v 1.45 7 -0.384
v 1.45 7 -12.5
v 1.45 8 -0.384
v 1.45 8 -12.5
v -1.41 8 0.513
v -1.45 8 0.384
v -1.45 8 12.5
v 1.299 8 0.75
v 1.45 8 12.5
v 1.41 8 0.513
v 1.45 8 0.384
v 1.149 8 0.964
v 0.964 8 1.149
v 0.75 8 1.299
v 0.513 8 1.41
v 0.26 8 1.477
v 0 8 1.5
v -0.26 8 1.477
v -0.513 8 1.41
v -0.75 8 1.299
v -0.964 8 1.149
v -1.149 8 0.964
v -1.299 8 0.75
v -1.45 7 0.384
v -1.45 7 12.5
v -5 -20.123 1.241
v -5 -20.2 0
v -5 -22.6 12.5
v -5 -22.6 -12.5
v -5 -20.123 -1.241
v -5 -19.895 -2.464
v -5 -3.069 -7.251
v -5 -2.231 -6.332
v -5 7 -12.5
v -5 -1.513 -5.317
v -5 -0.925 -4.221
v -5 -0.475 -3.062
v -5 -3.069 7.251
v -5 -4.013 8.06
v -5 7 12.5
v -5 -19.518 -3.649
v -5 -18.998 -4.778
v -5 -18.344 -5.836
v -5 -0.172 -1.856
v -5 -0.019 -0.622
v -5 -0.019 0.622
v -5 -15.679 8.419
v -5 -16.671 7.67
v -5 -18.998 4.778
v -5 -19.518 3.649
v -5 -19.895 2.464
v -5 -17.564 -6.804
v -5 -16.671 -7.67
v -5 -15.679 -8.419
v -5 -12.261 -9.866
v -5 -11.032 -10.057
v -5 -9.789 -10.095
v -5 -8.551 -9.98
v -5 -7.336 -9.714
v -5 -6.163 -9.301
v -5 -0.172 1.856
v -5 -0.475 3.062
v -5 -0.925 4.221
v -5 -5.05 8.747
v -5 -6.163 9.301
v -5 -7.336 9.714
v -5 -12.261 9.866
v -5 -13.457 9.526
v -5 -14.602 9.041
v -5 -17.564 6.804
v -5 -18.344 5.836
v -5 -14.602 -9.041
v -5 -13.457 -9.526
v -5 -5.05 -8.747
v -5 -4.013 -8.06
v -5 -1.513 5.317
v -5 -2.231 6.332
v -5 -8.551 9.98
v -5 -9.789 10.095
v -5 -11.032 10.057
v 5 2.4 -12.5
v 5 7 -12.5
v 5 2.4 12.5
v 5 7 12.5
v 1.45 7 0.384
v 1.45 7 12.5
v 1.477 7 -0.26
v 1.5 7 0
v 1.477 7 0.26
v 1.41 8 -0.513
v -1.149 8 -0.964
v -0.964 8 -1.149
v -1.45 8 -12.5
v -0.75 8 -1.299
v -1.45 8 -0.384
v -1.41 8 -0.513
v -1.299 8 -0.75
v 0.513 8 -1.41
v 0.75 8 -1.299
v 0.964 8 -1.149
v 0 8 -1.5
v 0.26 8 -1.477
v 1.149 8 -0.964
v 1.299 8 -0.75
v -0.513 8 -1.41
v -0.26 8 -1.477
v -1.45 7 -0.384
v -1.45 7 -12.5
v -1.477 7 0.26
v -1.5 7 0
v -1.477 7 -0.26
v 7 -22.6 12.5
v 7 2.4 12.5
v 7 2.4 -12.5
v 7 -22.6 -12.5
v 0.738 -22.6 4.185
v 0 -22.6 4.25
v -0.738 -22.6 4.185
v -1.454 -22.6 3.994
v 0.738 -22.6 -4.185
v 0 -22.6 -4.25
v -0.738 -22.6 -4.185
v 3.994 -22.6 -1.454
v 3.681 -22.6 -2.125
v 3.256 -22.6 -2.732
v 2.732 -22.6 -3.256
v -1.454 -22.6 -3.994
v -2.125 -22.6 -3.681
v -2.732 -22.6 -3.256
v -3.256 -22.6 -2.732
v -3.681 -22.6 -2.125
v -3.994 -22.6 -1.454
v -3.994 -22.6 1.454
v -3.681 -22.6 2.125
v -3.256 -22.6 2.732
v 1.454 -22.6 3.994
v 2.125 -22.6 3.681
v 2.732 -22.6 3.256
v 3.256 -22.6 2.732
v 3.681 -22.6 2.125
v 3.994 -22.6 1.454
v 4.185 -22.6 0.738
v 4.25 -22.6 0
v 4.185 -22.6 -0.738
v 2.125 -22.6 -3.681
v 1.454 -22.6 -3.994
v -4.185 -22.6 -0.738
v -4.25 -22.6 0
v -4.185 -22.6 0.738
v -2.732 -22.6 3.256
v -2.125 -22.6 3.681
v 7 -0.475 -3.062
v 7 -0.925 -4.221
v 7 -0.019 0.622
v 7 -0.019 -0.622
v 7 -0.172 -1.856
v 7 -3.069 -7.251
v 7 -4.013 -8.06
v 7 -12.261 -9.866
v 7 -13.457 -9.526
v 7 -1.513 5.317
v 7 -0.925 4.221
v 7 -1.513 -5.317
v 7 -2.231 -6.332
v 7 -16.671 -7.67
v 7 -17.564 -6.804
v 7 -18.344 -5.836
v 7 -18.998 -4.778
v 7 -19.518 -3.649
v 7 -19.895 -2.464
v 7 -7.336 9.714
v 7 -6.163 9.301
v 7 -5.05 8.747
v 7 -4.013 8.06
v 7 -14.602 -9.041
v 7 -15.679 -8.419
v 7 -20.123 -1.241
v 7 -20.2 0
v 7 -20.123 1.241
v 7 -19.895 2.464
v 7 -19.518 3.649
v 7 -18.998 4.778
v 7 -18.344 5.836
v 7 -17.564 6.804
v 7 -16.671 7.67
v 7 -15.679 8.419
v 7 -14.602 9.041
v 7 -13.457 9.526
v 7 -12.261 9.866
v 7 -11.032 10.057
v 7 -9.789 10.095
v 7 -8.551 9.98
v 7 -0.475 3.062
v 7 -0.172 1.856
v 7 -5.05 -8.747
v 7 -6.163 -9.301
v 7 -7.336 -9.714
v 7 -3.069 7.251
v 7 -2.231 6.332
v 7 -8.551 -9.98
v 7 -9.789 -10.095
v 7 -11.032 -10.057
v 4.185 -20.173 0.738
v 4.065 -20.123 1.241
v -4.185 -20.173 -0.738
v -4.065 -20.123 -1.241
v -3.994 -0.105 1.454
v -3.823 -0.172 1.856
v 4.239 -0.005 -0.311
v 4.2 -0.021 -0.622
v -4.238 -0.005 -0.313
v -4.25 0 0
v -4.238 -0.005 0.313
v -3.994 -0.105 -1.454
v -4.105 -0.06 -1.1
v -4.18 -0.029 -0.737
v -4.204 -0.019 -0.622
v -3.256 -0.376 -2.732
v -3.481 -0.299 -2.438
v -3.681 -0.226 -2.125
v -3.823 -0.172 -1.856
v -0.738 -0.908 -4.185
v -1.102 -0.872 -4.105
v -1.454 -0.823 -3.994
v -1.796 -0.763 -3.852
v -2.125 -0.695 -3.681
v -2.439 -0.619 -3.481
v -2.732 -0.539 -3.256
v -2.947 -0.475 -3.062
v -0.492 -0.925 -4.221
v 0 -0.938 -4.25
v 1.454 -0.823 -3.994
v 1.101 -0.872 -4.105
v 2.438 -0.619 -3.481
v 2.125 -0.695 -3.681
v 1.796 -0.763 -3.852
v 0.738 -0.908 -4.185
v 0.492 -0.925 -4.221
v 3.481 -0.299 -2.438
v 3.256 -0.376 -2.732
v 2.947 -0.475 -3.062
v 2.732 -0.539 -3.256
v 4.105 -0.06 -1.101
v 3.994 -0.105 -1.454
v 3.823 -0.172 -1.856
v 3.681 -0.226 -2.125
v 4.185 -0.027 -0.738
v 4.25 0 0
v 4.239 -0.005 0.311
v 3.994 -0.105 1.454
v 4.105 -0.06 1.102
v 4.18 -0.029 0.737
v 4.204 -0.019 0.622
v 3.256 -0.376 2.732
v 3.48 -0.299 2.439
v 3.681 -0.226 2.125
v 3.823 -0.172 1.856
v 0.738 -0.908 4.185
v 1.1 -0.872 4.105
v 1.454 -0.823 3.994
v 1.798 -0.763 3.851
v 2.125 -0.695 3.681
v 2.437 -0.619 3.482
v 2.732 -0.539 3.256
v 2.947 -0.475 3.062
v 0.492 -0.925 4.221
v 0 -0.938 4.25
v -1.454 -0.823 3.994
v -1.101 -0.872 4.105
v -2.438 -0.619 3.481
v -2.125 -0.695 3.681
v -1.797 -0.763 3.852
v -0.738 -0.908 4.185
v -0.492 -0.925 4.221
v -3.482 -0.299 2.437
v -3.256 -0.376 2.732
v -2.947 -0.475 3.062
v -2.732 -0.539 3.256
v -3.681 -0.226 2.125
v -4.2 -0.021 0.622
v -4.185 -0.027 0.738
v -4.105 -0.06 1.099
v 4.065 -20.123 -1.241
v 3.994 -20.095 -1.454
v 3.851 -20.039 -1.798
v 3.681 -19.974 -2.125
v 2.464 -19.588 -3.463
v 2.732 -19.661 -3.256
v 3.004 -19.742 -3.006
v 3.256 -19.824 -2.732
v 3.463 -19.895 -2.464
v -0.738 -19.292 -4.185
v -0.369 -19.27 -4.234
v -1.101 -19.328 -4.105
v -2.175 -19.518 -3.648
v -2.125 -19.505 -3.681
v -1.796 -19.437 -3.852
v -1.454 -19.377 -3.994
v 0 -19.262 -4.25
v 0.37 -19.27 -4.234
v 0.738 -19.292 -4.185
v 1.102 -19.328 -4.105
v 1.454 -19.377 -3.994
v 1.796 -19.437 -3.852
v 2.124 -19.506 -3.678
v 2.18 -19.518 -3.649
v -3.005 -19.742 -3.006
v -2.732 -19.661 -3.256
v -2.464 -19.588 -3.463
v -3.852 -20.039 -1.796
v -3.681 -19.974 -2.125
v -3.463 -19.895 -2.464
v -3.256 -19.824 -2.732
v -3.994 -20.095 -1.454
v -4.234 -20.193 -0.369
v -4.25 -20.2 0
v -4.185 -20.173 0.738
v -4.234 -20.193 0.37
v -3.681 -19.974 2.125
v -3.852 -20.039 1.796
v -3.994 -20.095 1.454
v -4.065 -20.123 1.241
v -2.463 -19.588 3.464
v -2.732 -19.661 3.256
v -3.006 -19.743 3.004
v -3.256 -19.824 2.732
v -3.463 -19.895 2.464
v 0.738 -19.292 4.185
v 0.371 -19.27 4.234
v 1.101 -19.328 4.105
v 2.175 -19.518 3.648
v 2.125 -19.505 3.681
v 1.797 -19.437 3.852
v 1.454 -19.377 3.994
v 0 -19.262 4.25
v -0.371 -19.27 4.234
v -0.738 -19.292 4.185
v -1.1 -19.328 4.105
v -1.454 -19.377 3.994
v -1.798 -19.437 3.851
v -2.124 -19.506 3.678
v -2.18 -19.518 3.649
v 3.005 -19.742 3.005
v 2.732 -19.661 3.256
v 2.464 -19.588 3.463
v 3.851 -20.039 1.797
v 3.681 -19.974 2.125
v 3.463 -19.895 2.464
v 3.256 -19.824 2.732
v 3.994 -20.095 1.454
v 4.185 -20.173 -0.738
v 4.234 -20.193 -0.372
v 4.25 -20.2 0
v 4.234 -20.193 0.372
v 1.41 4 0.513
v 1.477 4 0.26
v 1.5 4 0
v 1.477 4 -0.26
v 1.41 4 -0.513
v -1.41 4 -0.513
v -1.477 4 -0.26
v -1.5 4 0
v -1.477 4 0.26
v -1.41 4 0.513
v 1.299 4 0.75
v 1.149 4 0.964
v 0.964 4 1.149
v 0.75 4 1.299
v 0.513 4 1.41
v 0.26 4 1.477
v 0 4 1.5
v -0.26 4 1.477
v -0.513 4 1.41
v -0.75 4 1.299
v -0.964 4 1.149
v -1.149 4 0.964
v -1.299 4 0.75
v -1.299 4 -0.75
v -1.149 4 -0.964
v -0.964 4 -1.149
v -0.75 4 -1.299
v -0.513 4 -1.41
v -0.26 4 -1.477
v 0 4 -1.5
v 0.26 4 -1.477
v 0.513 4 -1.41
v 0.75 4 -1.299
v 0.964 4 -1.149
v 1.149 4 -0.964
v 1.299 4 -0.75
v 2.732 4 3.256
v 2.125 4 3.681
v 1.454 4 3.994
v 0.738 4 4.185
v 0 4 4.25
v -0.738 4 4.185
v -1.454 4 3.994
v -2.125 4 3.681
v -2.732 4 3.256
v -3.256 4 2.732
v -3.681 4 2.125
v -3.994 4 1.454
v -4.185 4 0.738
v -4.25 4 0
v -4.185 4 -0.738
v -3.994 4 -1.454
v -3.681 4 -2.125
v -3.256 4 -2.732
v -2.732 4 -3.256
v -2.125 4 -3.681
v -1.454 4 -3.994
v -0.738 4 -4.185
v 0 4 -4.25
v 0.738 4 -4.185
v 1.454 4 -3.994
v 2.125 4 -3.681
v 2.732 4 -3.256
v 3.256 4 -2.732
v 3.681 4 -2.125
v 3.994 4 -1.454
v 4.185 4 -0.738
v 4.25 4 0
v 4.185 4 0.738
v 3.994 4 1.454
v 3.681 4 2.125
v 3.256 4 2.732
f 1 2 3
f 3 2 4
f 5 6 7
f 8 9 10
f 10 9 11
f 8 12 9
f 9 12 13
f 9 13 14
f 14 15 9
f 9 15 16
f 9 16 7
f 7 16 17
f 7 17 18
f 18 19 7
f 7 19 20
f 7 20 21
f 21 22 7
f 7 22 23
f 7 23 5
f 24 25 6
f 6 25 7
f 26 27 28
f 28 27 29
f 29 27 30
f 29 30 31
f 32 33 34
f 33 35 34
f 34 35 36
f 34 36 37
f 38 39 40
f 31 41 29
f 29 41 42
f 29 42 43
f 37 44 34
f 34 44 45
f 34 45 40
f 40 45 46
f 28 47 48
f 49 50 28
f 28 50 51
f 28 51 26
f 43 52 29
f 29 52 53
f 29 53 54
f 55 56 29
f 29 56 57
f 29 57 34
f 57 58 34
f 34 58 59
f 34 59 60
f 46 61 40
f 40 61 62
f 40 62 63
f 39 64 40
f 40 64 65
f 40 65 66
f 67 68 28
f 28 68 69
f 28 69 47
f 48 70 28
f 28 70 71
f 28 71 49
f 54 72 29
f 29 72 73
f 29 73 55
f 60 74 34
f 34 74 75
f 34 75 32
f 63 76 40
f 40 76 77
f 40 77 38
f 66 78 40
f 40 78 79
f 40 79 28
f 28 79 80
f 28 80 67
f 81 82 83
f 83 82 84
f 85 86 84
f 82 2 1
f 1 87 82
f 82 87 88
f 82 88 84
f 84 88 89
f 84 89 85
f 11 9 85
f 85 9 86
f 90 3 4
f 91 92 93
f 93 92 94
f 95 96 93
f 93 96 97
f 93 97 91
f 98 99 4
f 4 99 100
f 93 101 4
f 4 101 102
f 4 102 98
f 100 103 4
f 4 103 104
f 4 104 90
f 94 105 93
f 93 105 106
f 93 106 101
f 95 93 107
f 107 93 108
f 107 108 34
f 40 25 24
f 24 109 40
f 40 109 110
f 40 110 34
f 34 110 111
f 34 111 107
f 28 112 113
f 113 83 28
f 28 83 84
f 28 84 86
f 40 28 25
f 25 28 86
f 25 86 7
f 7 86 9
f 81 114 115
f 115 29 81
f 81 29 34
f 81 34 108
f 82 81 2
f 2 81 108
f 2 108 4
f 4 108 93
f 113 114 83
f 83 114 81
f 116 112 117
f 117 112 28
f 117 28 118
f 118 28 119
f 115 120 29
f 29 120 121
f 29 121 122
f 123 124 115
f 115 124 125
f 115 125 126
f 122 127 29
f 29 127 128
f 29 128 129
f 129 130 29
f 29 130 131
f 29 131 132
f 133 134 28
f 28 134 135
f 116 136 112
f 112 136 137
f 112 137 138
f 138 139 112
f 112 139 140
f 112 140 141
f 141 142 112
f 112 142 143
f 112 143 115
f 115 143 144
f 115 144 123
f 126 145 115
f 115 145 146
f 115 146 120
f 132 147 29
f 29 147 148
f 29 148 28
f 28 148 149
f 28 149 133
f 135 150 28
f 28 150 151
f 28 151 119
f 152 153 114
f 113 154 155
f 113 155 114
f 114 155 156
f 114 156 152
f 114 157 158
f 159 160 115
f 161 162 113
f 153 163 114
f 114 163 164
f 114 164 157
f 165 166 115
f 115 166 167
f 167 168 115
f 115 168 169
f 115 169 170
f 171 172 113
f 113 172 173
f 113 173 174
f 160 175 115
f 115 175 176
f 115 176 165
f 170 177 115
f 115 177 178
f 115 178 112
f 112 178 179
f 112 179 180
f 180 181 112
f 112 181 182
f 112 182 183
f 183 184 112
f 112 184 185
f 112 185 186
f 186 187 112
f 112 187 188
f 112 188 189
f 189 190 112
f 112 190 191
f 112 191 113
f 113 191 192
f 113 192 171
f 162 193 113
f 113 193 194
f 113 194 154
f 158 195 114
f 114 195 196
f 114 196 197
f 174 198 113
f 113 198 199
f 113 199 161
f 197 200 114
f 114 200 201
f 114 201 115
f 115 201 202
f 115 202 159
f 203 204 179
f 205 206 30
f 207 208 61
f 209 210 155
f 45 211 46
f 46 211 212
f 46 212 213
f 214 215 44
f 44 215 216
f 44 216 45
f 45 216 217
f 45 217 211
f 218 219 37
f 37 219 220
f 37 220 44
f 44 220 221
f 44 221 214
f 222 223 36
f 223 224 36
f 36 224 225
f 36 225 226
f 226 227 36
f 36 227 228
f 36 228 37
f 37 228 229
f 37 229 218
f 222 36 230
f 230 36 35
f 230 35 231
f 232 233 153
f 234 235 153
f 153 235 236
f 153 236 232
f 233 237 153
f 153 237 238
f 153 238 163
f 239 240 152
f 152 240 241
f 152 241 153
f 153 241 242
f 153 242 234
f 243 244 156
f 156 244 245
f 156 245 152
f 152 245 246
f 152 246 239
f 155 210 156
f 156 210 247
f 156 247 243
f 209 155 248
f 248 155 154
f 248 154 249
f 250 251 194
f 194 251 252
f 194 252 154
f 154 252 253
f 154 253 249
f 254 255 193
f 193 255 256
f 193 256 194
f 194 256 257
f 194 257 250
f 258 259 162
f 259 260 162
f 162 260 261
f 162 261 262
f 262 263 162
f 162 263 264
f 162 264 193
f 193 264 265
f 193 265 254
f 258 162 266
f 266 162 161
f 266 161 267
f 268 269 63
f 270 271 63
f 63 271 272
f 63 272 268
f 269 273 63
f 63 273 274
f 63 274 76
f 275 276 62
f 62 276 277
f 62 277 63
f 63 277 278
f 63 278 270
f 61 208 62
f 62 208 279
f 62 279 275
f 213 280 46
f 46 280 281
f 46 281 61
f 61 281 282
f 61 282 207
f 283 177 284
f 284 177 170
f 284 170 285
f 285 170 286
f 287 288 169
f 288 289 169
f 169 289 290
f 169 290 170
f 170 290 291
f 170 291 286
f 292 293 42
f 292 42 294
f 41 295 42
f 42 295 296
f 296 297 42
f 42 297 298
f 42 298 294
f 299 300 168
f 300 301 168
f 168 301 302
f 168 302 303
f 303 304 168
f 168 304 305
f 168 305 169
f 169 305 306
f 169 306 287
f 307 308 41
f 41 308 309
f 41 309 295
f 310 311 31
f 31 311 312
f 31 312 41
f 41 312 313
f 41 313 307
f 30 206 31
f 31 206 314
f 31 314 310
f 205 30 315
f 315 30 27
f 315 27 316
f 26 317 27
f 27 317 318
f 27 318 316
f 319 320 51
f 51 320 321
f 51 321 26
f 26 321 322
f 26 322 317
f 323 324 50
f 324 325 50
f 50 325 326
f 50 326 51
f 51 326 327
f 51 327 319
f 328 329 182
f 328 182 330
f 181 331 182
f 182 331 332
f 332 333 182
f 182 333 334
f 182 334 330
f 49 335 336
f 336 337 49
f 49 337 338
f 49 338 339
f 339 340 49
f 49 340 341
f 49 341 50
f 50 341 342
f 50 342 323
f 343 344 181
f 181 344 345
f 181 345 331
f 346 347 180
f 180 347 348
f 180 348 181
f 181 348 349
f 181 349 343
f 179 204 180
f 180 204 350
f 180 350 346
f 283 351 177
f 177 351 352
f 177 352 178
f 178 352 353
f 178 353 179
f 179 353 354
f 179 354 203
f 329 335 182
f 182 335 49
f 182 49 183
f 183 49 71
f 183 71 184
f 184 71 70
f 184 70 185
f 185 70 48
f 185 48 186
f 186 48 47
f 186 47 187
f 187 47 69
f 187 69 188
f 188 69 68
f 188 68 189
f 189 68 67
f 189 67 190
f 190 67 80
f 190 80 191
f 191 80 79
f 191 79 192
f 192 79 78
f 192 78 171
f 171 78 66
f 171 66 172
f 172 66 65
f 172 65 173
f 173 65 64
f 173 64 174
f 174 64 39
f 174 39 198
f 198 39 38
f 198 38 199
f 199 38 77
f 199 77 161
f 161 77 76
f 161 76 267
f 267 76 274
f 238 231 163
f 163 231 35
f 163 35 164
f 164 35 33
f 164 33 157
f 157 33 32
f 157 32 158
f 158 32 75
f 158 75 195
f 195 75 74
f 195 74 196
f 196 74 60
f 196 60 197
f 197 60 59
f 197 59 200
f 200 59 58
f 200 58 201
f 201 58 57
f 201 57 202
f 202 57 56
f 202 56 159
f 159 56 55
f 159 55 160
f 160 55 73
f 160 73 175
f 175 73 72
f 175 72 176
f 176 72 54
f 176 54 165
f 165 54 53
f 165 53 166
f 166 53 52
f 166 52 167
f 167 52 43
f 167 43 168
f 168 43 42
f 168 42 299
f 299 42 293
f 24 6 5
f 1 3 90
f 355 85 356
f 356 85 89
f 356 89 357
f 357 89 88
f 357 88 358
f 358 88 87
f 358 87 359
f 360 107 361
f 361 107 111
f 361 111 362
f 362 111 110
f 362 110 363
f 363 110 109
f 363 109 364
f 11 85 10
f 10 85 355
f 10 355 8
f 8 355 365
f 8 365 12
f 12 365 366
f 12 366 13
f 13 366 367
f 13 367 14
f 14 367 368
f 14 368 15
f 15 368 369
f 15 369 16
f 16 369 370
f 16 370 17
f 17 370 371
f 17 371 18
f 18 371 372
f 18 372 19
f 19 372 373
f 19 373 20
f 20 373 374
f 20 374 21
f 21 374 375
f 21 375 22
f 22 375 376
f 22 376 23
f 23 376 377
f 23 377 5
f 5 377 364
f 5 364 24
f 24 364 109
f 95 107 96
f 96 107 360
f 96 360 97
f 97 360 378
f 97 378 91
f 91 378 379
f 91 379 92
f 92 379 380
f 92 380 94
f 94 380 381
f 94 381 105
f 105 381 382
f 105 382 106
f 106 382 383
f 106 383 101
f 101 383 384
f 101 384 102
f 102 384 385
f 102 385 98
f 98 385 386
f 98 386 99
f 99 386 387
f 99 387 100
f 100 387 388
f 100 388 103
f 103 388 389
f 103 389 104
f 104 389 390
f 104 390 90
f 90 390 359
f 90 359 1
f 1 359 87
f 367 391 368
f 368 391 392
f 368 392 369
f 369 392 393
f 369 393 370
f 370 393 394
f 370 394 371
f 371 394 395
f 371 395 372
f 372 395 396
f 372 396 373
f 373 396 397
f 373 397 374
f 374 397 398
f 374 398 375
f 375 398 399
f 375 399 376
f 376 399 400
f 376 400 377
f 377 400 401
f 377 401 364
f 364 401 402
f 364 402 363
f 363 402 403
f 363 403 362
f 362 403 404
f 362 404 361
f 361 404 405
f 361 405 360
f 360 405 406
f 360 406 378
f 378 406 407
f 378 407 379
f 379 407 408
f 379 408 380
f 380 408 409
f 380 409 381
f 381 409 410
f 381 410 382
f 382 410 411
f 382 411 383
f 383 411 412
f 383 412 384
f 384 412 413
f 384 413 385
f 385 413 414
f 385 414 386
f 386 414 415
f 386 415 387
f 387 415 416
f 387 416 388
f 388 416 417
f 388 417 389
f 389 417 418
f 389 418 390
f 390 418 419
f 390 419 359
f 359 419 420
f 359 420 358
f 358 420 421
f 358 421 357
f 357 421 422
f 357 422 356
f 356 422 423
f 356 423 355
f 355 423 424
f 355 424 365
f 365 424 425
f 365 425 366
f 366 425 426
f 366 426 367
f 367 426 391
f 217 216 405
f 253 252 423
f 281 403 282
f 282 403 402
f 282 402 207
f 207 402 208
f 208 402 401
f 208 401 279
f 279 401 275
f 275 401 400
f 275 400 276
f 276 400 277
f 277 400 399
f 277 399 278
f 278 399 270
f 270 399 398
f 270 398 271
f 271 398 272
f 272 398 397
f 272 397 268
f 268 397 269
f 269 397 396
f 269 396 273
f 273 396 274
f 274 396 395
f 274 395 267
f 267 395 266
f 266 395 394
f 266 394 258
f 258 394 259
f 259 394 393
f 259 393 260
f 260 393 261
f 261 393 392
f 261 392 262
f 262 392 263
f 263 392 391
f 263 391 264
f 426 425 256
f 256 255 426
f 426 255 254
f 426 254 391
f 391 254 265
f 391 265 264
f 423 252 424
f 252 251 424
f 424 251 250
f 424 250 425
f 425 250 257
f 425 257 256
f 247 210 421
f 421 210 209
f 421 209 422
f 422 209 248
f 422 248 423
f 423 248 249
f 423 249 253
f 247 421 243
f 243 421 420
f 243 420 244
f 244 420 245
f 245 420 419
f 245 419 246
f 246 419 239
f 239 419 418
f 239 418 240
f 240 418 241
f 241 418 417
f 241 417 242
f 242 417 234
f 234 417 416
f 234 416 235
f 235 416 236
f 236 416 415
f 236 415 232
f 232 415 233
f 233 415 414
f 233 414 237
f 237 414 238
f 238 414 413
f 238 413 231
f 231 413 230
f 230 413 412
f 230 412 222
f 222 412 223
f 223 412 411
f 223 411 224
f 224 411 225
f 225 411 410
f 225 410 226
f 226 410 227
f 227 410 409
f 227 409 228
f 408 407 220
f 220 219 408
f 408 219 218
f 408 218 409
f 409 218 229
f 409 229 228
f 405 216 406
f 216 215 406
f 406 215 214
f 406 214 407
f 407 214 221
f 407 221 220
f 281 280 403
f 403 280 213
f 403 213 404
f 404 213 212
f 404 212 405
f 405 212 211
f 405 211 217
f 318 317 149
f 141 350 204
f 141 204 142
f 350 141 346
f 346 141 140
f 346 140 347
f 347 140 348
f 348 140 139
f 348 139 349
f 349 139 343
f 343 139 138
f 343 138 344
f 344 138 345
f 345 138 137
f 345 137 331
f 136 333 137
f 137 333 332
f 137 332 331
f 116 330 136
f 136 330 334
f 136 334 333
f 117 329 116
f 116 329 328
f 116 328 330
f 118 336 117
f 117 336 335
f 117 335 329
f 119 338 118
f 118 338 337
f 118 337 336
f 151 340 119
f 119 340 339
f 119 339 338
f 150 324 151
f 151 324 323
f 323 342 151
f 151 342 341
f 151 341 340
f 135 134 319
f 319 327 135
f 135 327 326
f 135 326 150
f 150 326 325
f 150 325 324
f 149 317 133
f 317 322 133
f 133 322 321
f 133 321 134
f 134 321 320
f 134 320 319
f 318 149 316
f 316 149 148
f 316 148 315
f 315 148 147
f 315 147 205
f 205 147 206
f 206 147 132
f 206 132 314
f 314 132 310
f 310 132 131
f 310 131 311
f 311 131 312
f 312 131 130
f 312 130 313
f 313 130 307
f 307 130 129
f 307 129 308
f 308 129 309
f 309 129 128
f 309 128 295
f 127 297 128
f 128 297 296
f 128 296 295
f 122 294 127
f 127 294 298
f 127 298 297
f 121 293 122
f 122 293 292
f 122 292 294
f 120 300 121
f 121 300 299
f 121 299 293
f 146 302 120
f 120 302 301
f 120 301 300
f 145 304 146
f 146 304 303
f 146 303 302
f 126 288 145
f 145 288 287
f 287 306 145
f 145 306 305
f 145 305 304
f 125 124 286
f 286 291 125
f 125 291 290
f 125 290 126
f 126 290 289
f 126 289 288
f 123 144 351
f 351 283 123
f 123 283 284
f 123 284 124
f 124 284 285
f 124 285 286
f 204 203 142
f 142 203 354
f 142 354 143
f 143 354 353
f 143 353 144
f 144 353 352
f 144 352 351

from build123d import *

# Parameters (mm, degrees)
MAKERBEAMFIX_DEPTH          = 12.5
SKETCH3_W                   = 25
SKETCH3_H                   = 25
SKETCH3_R                   = 10.1
MAKERBEAMTHREADINGTAP_DEPTH = 12
SKETCH4_R                   = 1.5
FIXINGHOLE_DEPTH            = 31.6
SKETCH5_R                   = 4.25
DRIVERHOLE_DEPTH            = 27.6000001


with BuildPart() as part:
    # Sketch1 → MakerBeamFix (new body, symmetric)
    with BuildSketch(Plane.XY):
        Polygon((-5, 0), (5, 0), (5, 7), (1.45, 7), (1.45, 8), (-1.45, 8), (-1.45, 7), (-5, 7), align=None)
    extrude(amount=MAKERBEAMFIX_DEPTH, both=True)

    # Sketch3 → MakerBeamThreadingTap (add)
    with BuildSketch(Plane.ZY.offset(5)):
        with Locations((0, -10.1)):
            Rectangle(SKETCH3_W, SKETCH3_H)
        with Locations((0, -10.1)):
            Circle(SKETCH3_R, mode=Mode.SUBTRACT)
    extrude(amount=-MAKERBEAMTHREADINGTAP_DEPTH)

    # Sketch4 → FixingHole (cut, through all)
    with BuildSketch(Plane.XZ.offset(22.6)):
        Circle(SKETCH4_R)
    extrude(amount=-FIXINGHOLE_DEPTH, mode=Mode.SUBTRACT)

    # Sketch5 → DriverHole (cut, through all)
    with BuildSketch(Plane(origin=(0, 4, 0), x_dir=(1, 0, 0), z_dir=(0, 1, 0))):
        Circle(SKETCH5_R)
    extrude(amount=-DRIVERHOLE_DEPTH, mode=Mode.SUBTRACT)


solid = part.part
